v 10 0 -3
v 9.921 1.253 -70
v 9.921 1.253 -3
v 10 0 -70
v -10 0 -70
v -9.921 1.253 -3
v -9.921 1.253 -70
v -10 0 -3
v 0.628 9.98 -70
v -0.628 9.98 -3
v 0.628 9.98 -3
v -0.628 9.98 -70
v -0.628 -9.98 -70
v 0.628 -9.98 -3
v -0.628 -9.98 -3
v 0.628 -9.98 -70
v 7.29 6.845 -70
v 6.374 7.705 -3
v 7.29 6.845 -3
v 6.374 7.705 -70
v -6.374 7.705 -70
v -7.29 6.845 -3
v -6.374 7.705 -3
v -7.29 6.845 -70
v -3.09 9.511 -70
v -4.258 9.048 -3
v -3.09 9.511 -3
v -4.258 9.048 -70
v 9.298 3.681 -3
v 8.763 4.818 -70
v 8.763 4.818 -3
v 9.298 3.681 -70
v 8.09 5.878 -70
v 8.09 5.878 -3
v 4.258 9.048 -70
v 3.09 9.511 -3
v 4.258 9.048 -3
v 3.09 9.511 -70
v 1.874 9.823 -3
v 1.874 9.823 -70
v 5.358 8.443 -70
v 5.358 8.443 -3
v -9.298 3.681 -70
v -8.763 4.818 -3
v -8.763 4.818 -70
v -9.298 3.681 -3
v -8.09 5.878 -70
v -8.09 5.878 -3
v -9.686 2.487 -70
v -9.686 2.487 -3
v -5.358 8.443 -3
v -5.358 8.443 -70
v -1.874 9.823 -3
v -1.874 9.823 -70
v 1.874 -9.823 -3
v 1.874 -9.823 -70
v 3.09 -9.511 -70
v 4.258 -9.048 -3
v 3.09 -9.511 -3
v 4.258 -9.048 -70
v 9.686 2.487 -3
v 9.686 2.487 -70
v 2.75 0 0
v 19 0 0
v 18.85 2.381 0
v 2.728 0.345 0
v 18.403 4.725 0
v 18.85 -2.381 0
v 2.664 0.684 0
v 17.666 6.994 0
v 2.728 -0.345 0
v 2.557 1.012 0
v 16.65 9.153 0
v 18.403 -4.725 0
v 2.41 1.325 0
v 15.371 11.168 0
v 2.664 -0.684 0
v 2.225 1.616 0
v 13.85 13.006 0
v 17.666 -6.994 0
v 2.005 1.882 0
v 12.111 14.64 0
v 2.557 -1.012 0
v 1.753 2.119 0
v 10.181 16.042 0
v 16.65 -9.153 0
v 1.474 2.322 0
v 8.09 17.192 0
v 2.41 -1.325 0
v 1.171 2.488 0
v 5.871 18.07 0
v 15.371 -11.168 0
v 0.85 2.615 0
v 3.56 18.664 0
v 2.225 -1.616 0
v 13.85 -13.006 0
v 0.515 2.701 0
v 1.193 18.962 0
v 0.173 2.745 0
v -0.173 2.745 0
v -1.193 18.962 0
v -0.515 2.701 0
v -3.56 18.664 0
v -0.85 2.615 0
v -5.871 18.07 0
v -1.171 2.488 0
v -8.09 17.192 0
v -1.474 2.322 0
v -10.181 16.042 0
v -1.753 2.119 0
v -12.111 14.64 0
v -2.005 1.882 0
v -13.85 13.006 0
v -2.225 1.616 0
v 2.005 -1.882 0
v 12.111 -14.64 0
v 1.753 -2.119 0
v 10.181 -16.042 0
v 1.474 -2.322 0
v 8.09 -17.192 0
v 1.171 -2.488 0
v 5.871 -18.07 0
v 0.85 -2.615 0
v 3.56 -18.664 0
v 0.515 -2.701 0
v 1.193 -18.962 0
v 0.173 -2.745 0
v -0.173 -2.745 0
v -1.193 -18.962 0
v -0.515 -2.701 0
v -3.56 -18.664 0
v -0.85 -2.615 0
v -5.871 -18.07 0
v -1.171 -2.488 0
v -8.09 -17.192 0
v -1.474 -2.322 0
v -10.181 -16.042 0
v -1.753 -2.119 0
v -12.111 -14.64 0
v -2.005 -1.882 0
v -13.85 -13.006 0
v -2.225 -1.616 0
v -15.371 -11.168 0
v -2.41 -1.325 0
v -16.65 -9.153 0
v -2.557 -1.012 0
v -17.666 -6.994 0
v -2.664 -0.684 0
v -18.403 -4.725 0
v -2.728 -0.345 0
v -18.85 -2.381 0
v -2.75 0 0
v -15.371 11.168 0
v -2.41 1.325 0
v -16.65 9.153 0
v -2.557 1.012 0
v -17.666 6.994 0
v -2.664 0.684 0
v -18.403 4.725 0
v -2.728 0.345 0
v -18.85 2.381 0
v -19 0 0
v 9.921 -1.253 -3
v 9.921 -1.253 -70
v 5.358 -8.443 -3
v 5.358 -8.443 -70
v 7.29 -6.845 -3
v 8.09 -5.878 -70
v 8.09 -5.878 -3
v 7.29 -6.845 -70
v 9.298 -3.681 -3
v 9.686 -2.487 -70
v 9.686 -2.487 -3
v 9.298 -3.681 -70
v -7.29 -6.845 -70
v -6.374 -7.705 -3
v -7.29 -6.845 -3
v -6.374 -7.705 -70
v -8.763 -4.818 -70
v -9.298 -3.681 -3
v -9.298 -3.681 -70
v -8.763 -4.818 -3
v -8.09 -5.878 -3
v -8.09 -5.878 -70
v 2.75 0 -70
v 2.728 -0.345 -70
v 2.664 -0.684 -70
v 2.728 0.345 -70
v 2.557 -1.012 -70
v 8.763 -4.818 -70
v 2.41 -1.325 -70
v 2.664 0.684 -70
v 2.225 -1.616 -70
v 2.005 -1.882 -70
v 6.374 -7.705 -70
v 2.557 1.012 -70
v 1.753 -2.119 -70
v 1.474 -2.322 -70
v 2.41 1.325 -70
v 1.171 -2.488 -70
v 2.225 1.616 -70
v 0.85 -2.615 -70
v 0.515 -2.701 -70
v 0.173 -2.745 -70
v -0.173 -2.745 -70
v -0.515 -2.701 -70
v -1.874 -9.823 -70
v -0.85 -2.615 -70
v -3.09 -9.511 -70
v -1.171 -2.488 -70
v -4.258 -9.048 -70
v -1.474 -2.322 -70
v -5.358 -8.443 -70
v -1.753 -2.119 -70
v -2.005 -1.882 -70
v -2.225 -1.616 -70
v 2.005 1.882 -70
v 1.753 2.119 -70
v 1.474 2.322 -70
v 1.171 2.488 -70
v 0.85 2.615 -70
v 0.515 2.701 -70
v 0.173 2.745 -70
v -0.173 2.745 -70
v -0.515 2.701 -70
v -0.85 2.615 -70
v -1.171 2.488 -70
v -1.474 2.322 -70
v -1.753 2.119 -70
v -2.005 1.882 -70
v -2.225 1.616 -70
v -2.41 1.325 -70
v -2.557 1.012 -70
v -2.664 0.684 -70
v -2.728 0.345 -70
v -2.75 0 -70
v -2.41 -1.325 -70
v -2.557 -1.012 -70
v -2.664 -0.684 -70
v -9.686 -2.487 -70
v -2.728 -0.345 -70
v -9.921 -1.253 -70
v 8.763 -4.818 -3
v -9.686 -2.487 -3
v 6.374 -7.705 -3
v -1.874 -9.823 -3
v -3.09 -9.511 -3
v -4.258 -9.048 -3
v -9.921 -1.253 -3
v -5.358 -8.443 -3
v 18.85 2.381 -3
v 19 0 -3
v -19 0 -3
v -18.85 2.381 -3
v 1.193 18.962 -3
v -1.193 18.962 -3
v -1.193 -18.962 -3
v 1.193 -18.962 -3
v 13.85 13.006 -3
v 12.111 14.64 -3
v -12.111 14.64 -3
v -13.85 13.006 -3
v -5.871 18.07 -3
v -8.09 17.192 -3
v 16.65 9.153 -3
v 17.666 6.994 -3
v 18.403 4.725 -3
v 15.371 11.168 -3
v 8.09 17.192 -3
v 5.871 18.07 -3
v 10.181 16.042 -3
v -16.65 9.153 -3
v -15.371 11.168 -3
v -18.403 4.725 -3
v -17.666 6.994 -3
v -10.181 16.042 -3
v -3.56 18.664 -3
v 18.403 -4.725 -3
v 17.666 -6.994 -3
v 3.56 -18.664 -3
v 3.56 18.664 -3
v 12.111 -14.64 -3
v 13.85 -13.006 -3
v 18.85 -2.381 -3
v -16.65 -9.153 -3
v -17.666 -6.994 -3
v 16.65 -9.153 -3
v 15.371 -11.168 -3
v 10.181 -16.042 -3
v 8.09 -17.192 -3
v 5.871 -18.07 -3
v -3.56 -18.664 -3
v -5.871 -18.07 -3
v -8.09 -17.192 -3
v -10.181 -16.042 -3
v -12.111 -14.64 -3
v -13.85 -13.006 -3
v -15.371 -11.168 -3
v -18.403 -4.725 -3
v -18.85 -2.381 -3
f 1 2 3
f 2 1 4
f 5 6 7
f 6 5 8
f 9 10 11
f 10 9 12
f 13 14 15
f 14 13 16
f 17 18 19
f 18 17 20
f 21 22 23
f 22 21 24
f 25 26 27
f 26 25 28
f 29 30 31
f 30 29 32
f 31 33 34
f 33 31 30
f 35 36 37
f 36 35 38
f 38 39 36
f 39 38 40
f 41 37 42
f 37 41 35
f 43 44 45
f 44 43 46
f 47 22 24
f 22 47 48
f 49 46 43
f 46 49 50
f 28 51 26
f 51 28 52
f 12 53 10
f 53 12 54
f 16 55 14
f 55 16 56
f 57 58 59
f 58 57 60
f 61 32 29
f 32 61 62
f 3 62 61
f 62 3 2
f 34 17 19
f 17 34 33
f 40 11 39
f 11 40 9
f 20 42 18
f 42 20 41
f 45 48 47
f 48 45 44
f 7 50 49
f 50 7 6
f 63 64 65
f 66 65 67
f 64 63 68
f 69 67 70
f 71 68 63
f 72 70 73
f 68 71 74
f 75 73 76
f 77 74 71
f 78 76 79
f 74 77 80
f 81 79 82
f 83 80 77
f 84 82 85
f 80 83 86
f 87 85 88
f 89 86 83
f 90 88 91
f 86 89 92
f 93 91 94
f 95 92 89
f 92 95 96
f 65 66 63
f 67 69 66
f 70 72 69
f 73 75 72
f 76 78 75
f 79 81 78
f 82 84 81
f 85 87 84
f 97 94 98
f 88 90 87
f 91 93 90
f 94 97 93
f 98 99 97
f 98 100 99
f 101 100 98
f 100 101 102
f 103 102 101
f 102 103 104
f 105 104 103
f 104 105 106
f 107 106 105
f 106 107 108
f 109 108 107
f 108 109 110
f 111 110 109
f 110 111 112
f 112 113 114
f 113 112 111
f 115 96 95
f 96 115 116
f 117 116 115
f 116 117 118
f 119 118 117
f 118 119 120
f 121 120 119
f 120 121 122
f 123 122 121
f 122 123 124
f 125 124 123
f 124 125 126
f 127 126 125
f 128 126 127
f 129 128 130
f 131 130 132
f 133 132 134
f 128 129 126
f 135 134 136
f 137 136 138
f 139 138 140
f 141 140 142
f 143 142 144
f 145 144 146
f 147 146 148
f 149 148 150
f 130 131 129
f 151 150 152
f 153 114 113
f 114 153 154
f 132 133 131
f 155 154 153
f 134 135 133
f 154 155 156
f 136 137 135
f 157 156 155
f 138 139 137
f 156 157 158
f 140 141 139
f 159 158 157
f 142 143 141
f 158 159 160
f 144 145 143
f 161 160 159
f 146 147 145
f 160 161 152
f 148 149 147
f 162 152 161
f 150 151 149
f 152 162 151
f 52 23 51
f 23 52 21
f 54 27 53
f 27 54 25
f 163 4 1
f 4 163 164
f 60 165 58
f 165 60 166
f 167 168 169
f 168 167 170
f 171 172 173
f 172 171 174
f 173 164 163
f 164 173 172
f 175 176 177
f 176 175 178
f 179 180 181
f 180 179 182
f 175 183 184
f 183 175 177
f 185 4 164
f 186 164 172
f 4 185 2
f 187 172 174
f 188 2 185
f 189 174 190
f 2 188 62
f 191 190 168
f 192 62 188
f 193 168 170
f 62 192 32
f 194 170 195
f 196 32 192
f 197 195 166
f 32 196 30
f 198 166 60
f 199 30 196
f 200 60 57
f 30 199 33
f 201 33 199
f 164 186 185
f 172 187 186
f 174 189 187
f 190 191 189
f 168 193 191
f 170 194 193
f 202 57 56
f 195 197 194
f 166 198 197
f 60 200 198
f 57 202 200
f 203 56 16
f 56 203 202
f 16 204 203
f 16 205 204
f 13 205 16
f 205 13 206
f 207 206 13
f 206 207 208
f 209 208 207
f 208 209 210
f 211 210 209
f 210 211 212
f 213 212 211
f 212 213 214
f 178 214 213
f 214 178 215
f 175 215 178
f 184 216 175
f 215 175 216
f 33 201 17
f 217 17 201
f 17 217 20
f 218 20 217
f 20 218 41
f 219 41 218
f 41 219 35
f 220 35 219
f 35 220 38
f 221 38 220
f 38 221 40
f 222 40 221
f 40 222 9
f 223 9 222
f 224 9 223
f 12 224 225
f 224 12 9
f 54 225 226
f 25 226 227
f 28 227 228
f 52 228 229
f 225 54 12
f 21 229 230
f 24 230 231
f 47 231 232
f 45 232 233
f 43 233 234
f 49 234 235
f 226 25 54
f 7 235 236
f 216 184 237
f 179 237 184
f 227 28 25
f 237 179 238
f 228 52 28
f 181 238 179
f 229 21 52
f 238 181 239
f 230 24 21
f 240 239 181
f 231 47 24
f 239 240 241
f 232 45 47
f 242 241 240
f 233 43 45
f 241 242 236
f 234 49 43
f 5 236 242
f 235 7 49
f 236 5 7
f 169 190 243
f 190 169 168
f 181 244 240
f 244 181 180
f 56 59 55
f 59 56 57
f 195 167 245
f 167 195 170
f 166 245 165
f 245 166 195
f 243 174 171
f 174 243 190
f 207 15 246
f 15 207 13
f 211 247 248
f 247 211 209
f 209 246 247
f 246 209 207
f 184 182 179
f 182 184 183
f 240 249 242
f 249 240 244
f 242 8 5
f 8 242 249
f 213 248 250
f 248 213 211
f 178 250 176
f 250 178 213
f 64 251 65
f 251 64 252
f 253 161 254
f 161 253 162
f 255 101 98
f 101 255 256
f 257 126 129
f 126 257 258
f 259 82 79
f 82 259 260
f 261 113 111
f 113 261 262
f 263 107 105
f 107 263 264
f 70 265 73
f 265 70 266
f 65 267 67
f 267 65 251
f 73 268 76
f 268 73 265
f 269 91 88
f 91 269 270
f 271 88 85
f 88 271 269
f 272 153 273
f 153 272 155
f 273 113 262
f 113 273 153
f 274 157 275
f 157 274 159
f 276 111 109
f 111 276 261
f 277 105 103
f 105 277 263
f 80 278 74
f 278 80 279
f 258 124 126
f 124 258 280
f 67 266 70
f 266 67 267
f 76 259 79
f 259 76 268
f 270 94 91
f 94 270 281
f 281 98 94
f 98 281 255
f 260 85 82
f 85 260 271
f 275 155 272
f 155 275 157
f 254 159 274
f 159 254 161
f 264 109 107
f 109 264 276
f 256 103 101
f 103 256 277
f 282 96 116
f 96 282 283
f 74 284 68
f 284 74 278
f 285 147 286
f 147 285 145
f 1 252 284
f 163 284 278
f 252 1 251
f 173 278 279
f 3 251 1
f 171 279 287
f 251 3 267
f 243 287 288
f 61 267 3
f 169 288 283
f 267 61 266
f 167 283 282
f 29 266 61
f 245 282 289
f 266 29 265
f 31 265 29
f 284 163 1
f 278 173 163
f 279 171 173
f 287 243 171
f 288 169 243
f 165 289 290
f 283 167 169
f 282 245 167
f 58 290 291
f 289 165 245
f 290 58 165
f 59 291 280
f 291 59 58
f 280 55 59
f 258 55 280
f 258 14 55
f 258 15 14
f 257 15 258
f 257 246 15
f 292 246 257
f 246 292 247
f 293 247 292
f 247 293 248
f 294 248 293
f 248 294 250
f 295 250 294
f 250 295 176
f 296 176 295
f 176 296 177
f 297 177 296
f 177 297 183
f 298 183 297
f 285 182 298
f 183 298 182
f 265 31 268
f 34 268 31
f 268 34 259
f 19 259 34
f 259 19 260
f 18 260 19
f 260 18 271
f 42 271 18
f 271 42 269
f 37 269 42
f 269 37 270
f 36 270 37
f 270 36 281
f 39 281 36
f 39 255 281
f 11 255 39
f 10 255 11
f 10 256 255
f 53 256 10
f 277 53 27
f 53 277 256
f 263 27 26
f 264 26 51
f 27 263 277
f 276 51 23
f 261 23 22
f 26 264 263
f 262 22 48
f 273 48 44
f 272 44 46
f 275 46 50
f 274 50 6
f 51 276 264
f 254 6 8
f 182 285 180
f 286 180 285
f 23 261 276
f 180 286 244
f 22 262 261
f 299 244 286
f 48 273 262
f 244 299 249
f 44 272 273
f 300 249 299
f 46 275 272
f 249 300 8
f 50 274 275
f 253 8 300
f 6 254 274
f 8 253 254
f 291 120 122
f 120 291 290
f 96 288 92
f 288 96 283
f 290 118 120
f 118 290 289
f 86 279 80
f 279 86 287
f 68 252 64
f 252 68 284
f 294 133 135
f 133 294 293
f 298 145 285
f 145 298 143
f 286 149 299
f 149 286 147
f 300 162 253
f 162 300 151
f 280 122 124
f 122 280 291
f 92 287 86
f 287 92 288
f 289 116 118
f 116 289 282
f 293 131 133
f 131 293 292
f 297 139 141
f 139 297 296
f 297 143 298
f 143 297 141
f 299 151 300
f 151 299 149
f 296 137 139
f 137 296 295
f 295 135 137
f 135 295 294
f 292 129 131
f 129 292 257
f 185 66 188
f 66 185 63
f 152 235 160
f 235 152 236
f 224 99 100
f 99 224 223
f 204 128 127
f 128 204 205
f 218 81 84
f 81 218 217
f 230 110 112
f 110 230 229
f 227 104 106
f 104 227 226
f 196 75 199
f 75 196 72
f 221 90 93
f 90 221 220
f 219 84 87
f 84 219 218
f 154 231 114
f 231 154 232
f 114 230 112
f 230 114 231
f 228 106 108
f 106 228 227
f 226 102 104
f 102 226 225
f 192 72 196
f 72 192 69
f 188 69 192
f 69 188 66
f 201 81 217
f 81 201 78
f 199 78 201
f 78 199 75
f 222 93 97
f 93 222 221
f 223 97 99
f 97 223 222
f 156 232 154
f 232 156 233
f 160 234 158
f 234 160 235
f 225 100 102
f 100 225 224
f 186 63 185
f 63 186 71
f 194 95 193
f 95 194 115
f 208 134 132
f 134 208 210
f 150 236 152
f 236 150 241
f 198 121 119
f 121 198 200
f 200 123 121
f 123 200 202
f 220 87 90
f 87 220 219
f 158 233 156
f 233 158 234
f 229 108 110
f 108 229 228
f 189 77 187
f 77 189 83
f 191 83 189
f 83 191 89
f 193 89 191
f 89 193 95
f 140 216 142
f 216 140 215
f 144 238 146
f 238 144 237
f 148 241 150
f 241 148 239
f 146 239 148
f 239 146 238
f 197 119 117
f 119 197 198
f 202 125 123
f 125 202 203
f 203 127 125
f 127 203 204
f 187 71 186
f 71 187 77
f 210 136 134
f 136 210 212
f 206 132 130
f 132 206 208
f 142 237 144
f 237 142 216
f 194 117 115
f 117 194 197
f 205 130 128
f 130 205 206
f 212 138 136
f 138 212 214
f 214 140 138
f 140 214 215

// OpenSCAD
$fn = 50;


difference() {
	union() {
		translate(v = [0, 0, -70.0000000000]) {
			cylinder(h = 70, r = 10.0000000000);
		}
		translate(v = [0, 0, -3.0000000000]) {
			cylinder(h = 3, r = 19.0000000000);
		}
	}
	union() {
		#translate(v = [0, 0, -70]) {
			cylinder(h = 70, r = 2.7500000000);
		}
	}
}
